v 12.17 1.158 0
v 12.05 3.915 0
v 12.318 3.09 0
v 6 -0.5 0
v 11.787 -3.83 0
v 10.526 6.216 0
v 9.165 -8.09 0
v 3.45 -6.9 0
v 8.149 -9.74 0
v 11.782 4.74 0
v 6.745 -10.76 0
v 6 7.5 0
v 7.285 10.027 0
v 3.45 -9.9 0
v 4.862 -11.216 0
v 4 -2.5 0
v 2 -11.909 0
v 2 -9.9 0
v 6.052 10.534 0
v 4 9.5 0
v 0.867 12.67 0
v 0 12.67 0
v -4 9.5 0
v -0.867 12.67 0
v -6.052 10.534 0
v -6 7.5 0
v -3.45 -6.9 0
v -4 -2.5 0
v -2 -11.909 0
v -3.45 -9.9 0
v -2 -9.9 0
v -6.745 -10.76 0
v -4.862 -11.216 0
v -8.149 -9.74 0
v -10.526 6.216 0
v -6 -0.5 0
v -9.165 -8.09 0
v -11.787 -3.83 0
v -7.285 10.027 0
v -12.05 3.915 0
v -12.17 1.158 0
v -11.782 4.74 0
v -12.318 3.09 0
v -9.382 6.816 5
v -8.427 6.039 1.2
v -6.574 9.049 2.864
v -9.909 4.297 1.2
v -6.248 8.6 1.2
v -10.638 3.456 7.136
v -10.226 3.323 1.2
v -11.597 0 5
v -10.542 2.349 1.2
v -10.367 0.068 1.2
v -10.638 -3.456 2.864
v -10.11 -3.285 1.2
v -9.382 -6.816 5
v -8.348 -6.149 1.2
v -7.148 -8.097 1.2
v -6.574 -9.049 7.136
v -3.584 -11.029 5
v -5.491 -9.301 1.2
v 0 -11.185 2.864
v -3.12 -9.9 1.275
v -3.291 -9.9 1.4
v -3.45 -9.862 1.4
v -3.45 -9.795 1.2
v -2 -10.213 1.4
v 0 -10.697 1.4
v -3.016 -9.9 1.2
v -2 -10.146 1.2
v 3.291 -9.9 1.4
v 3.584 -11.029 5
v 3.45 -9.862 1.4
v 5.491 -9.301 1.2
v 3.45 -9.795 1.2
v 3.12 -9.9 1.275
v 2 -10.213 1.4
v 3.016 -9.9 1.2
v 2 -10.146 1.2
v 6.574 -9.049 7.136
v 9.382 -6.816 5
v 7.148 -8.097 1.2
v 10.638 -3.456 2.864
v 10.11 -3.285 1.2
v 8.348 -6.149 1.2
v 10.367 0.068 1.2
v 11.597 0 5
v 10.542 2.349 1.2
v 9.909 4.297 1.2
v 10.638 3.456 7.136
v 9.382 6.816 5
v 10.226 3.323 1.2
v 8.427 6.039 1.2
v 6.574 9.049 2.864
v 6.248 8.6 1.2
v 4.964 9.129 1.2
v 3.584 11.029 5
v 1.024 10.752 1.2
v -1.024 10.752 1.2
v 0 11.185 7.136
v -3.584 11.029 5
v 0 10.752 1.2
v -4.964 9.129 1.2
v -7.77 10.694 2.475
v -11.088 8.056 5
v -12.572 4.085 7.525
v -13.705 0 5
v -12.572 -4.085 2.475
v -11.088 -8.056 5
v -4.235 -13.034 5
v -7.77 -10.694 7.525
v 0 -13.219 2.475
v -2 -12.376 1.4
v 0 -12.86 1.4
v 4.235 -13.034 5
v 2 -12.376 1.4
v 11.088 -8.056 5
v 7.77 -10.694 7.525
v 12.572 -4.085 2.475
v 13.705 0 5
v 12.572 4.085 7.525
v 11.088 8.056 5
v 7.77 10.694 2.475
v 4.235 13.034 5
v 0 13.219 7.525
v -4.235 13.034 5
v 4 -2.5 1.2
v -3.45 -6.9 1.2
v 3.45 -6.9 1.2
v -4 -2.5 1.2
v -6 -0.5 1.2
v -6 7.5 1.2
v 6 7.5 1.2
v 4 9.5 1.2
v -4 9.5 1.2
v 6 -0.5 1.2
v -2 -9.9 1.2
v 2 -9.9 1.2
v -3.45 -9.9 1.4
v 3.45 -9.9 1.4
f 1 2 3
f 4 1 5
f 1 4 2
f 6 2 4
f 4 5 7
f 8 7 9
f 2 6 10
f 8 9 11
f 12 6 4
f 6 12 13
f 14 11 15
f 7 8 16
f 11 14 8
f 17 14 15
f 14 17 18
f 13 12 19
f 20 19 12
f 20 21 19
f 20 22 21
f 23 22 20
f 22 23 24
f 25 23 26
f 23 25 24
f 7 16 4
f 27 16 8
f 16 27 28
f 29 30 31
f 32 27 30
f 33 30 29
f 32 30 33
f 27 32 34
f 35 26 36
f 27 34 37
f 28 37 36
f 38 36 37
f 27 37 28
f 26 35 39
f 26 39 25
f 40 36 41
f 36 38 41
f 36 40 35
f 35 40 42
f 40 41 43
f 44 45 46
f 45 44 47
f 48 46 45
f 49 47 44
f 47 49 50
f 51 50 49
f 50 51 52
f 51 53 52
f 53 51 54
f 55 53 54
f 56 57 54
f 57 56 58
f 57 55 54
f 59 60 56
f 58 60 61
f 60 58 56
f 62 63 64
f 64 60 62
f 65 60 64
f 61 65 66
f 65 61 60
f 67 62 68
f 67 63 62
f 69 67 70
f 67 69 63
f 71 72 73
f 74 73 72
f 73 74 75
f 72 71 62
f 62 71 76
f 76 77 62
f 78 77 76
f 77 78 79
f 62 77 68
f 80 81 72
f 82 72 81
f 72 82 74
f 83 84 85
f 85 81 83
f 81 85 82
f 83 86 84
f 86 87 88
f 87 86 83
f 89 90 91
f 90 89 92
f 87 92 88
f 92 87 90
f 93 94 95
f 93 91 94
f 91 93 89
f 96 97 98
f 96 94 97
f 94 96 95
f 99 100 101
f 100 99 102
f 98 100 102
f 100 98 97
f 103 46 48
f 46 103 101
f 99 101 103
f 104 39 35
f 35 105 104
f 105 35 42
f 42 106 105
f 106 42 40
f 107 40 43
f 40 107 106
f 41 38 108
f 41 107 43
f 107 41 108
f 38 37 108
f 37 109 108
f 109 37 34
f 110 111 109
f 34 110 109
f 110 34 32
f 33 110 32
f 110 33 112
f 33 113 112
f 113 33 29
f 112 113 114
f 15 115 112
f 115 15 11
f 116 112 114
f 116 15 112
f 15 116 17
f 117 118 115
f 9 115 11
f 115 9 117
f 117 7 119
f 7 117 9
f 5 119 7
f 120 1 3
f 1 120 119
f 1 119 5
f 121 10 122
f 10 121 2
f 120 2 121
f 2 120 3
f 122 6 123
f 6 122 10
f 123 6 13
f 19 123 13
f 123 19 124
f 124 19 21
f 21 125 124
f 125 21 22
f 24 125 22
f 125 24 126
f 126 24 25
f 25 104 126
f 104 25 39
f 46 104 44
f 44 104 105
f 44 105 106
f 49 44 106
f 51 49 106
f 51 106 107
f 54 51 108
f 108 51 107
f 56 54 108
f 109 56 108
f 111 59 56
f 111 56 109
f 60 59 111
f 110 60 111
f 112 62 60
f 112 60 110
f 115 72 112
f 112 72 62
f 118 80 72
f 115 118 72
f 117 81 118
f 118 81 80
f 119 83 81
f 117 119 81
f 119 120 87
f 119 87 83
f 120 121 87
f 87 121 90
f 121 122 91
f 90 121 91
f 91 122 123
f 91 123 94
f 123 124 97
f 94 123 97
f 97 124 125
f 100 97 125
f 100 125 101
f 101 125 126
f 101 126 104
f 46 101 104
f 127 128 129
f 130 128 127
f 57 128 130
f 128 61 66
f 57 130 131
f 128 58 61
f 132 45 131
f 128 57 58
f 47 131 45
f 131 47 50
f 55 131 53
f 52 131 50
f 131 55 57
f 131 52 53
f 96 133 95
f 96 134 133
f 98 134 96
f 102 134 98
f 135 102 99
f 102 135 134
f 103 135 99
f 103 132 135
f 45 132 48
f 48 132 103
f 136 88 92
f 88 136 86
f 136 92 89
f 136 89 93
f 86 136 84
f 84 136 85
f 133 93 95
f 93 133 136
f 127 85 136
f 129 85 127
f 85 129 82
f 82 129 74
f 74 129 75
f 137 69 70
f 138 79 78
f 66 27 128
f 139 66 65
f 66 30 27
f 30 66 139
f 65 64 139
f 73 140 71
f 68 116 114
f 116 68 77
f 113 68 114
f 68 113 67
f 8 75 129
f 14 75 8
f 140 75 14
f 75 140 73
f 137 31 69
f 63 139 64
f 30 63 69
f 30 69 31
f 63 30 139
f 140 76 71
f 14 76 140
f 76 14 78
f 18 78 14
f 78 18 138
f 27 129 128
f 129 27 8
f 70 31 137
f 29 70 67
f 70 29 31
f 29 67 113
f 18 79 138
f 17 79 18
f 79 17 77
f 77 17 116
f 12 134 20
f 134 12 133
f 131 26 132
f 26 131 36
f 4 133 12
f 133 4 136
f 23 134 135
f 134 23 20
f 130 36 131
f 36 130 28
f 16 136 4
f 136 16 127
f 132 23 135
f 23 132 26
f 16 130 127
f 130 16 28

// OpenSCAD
module eggshell() {
rotate ([0,0,18]) polyhedron( points = [ [5.592530e+00, 4.063211e+00, -9.048904e+00], [7.980826e+00, 5.798409e+00, -6.096808e+00], [1.064110e+01, -0.000000e+00, -5.320550e+00], [6.096808e+00, 0.000000e+00, -9.864843e+00], [-8.881784e-16, 0.000000e+00, -1.189711e+01], [1.884017e+00, 5.798409e+00, -9.864843e+00], [-2.136156e+00, 6.574413e+00, -9.048904e+00], [-4.932421e+00, 3.583614e+00, -9.864843e+00], [-8.608831e+00, 6.254682e+00, -5.320550e+00], [-3.048404e+00, 9.382023e+00, -6.096808e+00], [-3.456374e+00, 1.063762e+01, -2.136156e+00], [-6.816439e+00, 9.382023e+00, -0.000000e+00], [-9.048904e+00, 6.574413e+00, 2.136156e+00], [-1.102923e+01, 3.583614e+00, 8.881784e-16], [-1.118506e+01, 0.000000e+00, -2.136156e+00], [-9.864843e+00, 0.000000e+00, -6.096808e+00], [-6.912747e+00, 0.000000e+00, -9.048904e+00], [-4.932421e+00, -3.583614e+00, -9.864843e+00], [-8.608831e+00, -6.254682e+00, -5.320550e+00], [-1.102923e+01, -3.583614e+00, 8.881784e-16], [-9.048904e+00, -6.574413e+00, 2.136156e+00], [-6.816439e+00, -9.382023e+00, -0.000000e+00], [-3.456374e+00, -1.063762e+01, -2.136156e+00], [-3.048404e+00, -9.382023e+00, -6.096808e+00], [-2.136156e+00, -6.574413e+00, -9.048904e+00], [1.884017e+00, -5.798409e+00, -9.864843e+00], [3.288281e+00, -1.012029e+01, -5.320550e+00], [0.000000e+00, -1.159682e+01, -0.000000e+00], [3.456374e+00, -1.063762e+01, 2.136156e+00], [6.816439e+00, -9.382023e+00, -0.000000e+00], [9.048904e+00, -6.574413e+00, -2.136156e+00], [7.980826e+00, -5.798409e+00, -6.096808e+00], [5.592530e+00, -4.063211e+00, -9.048904e+00], [1.102923e+01, -3.583614e+00, -8.881784e-16], [1.118506e+01, -0.000000e+00, 2.136156e+00], [1.102923e+01, 3.583614e+00, -8.881784e-16], [9.048904e+00, 6.574413e+00, -2.136156e+00], [3.288281e+00, 1.012029e+01, -5.320550e+00], [6.816439e+00, 9.382023e+00, -0.000000e+00], [3.456374e+00, 1.063762e+01, 2.136156e+00], [-0.000000e+00, 1.159682e+01, -0.000000e+00], [6.609354e+00, 4.801977e+00, -1.069416e+01], [9.431885e+00, 6.852665e+00, -7.205319e+00], [1.257585e+01, -0.000000e+00, -6.287923e+00], [7.205319e+00, 0.000000e+00, -1.165845e+01], [-8.881784e-16, 0.000000e+00, -1.406022e+01], [2.226566e+00, 6.852665e+00, -1.165845e+01], [-2.524549e+00, 7.769761e+00, -1.069416e+01], [-5.829225e+00, 4.235180e+00, -1.165845e+01], [-1.017407e+01, 7.391897e+00, -6.287923e+00], [-3.602659e+00, 1.108785e+01, -7.205319e+00], [-4.084805e+00, 1.257174e+01, -2.524549e+00], [-8.055791e+00, 1.108785e+01, 4.440892e-16], [-1.069416e+01, 7.769761e+00, 2.524549e+00], [-1.303454e+01, 4.235180e+00, 8.881784e-16], [-1.321871e+01, 0.000000e+00, -2.524549e+00], [-1.165845e+01, 0.000000e+00, -7.205319e+00], [-8.169611e+00, 0.000000e+00, -1.069416e+01], [-5.829225e+00, -4.235180e+00, -1.165845e+01], [-1.017407e+01, -7.391897e+00, -6.287923e+00], [-1.303454e+01, -4.235180e+00, 8.881784e-16], [-1.069416e+01, -7.769761e+00, 2.524549e+00], [-8.055791e+00, -1.108785e+01, 4.440892e-16], [-4.084805e+00, -1.257174e+01, -2.524549e+00], [-3.602659e+00, -1.108785e+01, -7.205319e+00], [-2.524549e+00, -7.769761e+00, -1.069416e+01], [2.226566e+00, -6.852665e+00, -1.165845e+01], [3.886150e+00, -1.196034e+01, -6.287923e+00], [0.000000e+00, -1.370533e+01, -0.000000e+00], [4.084805e+00, -1.257174e+01, 2.524549e+00], [8.055791e+00, -1.108785e+01, -4.440892e-16], [1.069416e+01, -7.769761e+00, -2.524549e+00], [9.431885e+00, -6.852665e+00, -7.205319e+00], [6.609354e+00, -4.801977e+00, -1.069416e+01], [1.303454e+01, -4.235180e+00, -8.881784e-16], [1.321871e+01, -0.000000e+00, 2.524549e+00], [1.303454e+01, 4.235180e+00, -8.881784e-16], [1.069416e+01, 7.769761e+00, -2.524549e+00], [3.886150e+00, 1.196034e+01, -6.287923e+00], [8.055791e+00, 1.108785e+01, -4.440892e-16], [4.084805e+00, 1.257174e+01, 2.524549e+00], [-0.000000e+00, 1.370533e+01, -0.000000e+00] ], faces = [ [ 1, 2, 3, 0 ] , [ 3, 4, 5, 0 ] , [ 5, 4, 7, 6 ] , [ 7, 8, 9, 6 ] , [ 9, 8, 11, 10 ] , [ 11, 8, 13, 12 ] , [ 13, 8, 15, 14 ] , [ 15, 8, 7, 16 ] , [ 7, 4, 17, 16 ] , [ 17, 18, 15, 16 ] , [ 15, 18, 19, 14 ] , [ 19, 18, 21, 20 ] , [ 21, 18, 23, 22 ] , [ 23, 18, 17, 24 ] , [ 17, 4, 25, 24 ] , [ 25, 26, 23, 24 ] , [ 23, 26, 27, 22 ] , [ 27, 26, 29, 28 ] , [ 29, 26, 31, 30 ] , [ 31, 26, 25, 32 ] , [ 25, 4, 3, 32 ] , [ 3, 2, 31, 32 ] , [ 31, 2, 33, 30 ] , [ 33, 2, 35, 34 ] , [ 35, 2, 1, 36 ] , [ 1, 37, 38, 36 ] , [ 38, 37, 40, 39 ] , [ 40, 37, 9, 10 ] , [ 9, 37, 5, 6 ] , [ 5, 37, 1, 0 ] , [ 44, 43, 42, 41 ] , [ 46, 45, 44, 41 ] , [ 48, 45, 46, 47 ] , [ 50, 49, 48, 47 ] , [ 52, 49, 50, 51 ] , [ 54, 49, 52, 53 ] , [ 56, 49, 54, 55 ] , [ 48, 49, 56, 57 ] , [ 58, 45, 48, 57 ] , [ 56, 59, 58, 57 ] , [ 60, 59, 56, 55 ] , [ 62, 59, 60, 61 ] , [ 64, 59, 62, 63 ] , [ 58, 59, 64, 65 ] , [ 66, 45, 58, 65 ] , [ 64, 67, 66, 65 ] , [ 68, 67, 64, 63 ] , [ 70, 67, 68, 69 ] , [ 72, 67, 70, 71 ] , [ 66, 67, 72, 73 ] , [ 44, 45, 66, 73 ] , [ 72, 43, 44, 73 ] , [ 74, 43, 72, 71 ] , [ 76, 43, 74, 75 ] , [ 42, 43, 76, 77 ] , [ 79, 78, 42, 77 ] , [ 81, 78, 79, 80 ] , [ 50, 78, 81, 51 ] , [ 46, 78, 50, 47 ] , [ 42, 78, 46, 41 ] , [ 52, 51, 10, 11 ] , [ 53, 52, 11, 12 ] , [ 54, 53, 12, 13 ] , [ 55, 54, 13, 14 ] , [ 60, 55, 14, 19 ] , [ 61, 60, 19, 20 ] , [ 62, 61, 20, 21 ] , [ 63, 62, 21, 22 ] , [ 68, 63, 22, 27 ] , [ 69, 68, 27, 28 ] , [ 70, 69, 28, 29 ] , [ 71, 70, 29, 30 ] , [ 74, 71, 30, 33 ] , [ 75, 74, 33, 34 ] , [ 76, 75, 34, 35 ] , [ 77, 76, 35, 36 ] , [ 79, 77, 36, 38 ] , [ 80, 79, 38, 39 ] , [ 81, 80, 39, 40 ] , [ 51, 81, 40, 10 ]  ], convexity = 10);
}

module driver_cutout(h) {
    linear_extrude(h) {
            polygon([ [6,4], [4,6], [-4,6], [-6,4], [-6, -4], [-4, -6], [4, -6], [6, -4]]);
    }
}

module switch_cutout() {
     translate ([ 0, -8.4, .69 ]) union () {
         cube(size=[6.9,3,1.42], center=true);
         translate ([0,-2.4,0]) cube(size=[4,5,1.42], center=true);
     }
}

module cutouts() {
union () {
    switch_cutout();
        translate ([0,3.5,-1]) driver_cutout(5); 
}
}

difference () {
union()
{
     difference ()
     {
        cylinder(r = 11.5, h=1.2);   
         
        //cube( size = [12,12,5], center=true);
 }
 translate([0,0,5]) { intersection() {
     cube( size = [30, 30, 10], center=true );
     eggshell();
 } }
}
    cutouts();


}
